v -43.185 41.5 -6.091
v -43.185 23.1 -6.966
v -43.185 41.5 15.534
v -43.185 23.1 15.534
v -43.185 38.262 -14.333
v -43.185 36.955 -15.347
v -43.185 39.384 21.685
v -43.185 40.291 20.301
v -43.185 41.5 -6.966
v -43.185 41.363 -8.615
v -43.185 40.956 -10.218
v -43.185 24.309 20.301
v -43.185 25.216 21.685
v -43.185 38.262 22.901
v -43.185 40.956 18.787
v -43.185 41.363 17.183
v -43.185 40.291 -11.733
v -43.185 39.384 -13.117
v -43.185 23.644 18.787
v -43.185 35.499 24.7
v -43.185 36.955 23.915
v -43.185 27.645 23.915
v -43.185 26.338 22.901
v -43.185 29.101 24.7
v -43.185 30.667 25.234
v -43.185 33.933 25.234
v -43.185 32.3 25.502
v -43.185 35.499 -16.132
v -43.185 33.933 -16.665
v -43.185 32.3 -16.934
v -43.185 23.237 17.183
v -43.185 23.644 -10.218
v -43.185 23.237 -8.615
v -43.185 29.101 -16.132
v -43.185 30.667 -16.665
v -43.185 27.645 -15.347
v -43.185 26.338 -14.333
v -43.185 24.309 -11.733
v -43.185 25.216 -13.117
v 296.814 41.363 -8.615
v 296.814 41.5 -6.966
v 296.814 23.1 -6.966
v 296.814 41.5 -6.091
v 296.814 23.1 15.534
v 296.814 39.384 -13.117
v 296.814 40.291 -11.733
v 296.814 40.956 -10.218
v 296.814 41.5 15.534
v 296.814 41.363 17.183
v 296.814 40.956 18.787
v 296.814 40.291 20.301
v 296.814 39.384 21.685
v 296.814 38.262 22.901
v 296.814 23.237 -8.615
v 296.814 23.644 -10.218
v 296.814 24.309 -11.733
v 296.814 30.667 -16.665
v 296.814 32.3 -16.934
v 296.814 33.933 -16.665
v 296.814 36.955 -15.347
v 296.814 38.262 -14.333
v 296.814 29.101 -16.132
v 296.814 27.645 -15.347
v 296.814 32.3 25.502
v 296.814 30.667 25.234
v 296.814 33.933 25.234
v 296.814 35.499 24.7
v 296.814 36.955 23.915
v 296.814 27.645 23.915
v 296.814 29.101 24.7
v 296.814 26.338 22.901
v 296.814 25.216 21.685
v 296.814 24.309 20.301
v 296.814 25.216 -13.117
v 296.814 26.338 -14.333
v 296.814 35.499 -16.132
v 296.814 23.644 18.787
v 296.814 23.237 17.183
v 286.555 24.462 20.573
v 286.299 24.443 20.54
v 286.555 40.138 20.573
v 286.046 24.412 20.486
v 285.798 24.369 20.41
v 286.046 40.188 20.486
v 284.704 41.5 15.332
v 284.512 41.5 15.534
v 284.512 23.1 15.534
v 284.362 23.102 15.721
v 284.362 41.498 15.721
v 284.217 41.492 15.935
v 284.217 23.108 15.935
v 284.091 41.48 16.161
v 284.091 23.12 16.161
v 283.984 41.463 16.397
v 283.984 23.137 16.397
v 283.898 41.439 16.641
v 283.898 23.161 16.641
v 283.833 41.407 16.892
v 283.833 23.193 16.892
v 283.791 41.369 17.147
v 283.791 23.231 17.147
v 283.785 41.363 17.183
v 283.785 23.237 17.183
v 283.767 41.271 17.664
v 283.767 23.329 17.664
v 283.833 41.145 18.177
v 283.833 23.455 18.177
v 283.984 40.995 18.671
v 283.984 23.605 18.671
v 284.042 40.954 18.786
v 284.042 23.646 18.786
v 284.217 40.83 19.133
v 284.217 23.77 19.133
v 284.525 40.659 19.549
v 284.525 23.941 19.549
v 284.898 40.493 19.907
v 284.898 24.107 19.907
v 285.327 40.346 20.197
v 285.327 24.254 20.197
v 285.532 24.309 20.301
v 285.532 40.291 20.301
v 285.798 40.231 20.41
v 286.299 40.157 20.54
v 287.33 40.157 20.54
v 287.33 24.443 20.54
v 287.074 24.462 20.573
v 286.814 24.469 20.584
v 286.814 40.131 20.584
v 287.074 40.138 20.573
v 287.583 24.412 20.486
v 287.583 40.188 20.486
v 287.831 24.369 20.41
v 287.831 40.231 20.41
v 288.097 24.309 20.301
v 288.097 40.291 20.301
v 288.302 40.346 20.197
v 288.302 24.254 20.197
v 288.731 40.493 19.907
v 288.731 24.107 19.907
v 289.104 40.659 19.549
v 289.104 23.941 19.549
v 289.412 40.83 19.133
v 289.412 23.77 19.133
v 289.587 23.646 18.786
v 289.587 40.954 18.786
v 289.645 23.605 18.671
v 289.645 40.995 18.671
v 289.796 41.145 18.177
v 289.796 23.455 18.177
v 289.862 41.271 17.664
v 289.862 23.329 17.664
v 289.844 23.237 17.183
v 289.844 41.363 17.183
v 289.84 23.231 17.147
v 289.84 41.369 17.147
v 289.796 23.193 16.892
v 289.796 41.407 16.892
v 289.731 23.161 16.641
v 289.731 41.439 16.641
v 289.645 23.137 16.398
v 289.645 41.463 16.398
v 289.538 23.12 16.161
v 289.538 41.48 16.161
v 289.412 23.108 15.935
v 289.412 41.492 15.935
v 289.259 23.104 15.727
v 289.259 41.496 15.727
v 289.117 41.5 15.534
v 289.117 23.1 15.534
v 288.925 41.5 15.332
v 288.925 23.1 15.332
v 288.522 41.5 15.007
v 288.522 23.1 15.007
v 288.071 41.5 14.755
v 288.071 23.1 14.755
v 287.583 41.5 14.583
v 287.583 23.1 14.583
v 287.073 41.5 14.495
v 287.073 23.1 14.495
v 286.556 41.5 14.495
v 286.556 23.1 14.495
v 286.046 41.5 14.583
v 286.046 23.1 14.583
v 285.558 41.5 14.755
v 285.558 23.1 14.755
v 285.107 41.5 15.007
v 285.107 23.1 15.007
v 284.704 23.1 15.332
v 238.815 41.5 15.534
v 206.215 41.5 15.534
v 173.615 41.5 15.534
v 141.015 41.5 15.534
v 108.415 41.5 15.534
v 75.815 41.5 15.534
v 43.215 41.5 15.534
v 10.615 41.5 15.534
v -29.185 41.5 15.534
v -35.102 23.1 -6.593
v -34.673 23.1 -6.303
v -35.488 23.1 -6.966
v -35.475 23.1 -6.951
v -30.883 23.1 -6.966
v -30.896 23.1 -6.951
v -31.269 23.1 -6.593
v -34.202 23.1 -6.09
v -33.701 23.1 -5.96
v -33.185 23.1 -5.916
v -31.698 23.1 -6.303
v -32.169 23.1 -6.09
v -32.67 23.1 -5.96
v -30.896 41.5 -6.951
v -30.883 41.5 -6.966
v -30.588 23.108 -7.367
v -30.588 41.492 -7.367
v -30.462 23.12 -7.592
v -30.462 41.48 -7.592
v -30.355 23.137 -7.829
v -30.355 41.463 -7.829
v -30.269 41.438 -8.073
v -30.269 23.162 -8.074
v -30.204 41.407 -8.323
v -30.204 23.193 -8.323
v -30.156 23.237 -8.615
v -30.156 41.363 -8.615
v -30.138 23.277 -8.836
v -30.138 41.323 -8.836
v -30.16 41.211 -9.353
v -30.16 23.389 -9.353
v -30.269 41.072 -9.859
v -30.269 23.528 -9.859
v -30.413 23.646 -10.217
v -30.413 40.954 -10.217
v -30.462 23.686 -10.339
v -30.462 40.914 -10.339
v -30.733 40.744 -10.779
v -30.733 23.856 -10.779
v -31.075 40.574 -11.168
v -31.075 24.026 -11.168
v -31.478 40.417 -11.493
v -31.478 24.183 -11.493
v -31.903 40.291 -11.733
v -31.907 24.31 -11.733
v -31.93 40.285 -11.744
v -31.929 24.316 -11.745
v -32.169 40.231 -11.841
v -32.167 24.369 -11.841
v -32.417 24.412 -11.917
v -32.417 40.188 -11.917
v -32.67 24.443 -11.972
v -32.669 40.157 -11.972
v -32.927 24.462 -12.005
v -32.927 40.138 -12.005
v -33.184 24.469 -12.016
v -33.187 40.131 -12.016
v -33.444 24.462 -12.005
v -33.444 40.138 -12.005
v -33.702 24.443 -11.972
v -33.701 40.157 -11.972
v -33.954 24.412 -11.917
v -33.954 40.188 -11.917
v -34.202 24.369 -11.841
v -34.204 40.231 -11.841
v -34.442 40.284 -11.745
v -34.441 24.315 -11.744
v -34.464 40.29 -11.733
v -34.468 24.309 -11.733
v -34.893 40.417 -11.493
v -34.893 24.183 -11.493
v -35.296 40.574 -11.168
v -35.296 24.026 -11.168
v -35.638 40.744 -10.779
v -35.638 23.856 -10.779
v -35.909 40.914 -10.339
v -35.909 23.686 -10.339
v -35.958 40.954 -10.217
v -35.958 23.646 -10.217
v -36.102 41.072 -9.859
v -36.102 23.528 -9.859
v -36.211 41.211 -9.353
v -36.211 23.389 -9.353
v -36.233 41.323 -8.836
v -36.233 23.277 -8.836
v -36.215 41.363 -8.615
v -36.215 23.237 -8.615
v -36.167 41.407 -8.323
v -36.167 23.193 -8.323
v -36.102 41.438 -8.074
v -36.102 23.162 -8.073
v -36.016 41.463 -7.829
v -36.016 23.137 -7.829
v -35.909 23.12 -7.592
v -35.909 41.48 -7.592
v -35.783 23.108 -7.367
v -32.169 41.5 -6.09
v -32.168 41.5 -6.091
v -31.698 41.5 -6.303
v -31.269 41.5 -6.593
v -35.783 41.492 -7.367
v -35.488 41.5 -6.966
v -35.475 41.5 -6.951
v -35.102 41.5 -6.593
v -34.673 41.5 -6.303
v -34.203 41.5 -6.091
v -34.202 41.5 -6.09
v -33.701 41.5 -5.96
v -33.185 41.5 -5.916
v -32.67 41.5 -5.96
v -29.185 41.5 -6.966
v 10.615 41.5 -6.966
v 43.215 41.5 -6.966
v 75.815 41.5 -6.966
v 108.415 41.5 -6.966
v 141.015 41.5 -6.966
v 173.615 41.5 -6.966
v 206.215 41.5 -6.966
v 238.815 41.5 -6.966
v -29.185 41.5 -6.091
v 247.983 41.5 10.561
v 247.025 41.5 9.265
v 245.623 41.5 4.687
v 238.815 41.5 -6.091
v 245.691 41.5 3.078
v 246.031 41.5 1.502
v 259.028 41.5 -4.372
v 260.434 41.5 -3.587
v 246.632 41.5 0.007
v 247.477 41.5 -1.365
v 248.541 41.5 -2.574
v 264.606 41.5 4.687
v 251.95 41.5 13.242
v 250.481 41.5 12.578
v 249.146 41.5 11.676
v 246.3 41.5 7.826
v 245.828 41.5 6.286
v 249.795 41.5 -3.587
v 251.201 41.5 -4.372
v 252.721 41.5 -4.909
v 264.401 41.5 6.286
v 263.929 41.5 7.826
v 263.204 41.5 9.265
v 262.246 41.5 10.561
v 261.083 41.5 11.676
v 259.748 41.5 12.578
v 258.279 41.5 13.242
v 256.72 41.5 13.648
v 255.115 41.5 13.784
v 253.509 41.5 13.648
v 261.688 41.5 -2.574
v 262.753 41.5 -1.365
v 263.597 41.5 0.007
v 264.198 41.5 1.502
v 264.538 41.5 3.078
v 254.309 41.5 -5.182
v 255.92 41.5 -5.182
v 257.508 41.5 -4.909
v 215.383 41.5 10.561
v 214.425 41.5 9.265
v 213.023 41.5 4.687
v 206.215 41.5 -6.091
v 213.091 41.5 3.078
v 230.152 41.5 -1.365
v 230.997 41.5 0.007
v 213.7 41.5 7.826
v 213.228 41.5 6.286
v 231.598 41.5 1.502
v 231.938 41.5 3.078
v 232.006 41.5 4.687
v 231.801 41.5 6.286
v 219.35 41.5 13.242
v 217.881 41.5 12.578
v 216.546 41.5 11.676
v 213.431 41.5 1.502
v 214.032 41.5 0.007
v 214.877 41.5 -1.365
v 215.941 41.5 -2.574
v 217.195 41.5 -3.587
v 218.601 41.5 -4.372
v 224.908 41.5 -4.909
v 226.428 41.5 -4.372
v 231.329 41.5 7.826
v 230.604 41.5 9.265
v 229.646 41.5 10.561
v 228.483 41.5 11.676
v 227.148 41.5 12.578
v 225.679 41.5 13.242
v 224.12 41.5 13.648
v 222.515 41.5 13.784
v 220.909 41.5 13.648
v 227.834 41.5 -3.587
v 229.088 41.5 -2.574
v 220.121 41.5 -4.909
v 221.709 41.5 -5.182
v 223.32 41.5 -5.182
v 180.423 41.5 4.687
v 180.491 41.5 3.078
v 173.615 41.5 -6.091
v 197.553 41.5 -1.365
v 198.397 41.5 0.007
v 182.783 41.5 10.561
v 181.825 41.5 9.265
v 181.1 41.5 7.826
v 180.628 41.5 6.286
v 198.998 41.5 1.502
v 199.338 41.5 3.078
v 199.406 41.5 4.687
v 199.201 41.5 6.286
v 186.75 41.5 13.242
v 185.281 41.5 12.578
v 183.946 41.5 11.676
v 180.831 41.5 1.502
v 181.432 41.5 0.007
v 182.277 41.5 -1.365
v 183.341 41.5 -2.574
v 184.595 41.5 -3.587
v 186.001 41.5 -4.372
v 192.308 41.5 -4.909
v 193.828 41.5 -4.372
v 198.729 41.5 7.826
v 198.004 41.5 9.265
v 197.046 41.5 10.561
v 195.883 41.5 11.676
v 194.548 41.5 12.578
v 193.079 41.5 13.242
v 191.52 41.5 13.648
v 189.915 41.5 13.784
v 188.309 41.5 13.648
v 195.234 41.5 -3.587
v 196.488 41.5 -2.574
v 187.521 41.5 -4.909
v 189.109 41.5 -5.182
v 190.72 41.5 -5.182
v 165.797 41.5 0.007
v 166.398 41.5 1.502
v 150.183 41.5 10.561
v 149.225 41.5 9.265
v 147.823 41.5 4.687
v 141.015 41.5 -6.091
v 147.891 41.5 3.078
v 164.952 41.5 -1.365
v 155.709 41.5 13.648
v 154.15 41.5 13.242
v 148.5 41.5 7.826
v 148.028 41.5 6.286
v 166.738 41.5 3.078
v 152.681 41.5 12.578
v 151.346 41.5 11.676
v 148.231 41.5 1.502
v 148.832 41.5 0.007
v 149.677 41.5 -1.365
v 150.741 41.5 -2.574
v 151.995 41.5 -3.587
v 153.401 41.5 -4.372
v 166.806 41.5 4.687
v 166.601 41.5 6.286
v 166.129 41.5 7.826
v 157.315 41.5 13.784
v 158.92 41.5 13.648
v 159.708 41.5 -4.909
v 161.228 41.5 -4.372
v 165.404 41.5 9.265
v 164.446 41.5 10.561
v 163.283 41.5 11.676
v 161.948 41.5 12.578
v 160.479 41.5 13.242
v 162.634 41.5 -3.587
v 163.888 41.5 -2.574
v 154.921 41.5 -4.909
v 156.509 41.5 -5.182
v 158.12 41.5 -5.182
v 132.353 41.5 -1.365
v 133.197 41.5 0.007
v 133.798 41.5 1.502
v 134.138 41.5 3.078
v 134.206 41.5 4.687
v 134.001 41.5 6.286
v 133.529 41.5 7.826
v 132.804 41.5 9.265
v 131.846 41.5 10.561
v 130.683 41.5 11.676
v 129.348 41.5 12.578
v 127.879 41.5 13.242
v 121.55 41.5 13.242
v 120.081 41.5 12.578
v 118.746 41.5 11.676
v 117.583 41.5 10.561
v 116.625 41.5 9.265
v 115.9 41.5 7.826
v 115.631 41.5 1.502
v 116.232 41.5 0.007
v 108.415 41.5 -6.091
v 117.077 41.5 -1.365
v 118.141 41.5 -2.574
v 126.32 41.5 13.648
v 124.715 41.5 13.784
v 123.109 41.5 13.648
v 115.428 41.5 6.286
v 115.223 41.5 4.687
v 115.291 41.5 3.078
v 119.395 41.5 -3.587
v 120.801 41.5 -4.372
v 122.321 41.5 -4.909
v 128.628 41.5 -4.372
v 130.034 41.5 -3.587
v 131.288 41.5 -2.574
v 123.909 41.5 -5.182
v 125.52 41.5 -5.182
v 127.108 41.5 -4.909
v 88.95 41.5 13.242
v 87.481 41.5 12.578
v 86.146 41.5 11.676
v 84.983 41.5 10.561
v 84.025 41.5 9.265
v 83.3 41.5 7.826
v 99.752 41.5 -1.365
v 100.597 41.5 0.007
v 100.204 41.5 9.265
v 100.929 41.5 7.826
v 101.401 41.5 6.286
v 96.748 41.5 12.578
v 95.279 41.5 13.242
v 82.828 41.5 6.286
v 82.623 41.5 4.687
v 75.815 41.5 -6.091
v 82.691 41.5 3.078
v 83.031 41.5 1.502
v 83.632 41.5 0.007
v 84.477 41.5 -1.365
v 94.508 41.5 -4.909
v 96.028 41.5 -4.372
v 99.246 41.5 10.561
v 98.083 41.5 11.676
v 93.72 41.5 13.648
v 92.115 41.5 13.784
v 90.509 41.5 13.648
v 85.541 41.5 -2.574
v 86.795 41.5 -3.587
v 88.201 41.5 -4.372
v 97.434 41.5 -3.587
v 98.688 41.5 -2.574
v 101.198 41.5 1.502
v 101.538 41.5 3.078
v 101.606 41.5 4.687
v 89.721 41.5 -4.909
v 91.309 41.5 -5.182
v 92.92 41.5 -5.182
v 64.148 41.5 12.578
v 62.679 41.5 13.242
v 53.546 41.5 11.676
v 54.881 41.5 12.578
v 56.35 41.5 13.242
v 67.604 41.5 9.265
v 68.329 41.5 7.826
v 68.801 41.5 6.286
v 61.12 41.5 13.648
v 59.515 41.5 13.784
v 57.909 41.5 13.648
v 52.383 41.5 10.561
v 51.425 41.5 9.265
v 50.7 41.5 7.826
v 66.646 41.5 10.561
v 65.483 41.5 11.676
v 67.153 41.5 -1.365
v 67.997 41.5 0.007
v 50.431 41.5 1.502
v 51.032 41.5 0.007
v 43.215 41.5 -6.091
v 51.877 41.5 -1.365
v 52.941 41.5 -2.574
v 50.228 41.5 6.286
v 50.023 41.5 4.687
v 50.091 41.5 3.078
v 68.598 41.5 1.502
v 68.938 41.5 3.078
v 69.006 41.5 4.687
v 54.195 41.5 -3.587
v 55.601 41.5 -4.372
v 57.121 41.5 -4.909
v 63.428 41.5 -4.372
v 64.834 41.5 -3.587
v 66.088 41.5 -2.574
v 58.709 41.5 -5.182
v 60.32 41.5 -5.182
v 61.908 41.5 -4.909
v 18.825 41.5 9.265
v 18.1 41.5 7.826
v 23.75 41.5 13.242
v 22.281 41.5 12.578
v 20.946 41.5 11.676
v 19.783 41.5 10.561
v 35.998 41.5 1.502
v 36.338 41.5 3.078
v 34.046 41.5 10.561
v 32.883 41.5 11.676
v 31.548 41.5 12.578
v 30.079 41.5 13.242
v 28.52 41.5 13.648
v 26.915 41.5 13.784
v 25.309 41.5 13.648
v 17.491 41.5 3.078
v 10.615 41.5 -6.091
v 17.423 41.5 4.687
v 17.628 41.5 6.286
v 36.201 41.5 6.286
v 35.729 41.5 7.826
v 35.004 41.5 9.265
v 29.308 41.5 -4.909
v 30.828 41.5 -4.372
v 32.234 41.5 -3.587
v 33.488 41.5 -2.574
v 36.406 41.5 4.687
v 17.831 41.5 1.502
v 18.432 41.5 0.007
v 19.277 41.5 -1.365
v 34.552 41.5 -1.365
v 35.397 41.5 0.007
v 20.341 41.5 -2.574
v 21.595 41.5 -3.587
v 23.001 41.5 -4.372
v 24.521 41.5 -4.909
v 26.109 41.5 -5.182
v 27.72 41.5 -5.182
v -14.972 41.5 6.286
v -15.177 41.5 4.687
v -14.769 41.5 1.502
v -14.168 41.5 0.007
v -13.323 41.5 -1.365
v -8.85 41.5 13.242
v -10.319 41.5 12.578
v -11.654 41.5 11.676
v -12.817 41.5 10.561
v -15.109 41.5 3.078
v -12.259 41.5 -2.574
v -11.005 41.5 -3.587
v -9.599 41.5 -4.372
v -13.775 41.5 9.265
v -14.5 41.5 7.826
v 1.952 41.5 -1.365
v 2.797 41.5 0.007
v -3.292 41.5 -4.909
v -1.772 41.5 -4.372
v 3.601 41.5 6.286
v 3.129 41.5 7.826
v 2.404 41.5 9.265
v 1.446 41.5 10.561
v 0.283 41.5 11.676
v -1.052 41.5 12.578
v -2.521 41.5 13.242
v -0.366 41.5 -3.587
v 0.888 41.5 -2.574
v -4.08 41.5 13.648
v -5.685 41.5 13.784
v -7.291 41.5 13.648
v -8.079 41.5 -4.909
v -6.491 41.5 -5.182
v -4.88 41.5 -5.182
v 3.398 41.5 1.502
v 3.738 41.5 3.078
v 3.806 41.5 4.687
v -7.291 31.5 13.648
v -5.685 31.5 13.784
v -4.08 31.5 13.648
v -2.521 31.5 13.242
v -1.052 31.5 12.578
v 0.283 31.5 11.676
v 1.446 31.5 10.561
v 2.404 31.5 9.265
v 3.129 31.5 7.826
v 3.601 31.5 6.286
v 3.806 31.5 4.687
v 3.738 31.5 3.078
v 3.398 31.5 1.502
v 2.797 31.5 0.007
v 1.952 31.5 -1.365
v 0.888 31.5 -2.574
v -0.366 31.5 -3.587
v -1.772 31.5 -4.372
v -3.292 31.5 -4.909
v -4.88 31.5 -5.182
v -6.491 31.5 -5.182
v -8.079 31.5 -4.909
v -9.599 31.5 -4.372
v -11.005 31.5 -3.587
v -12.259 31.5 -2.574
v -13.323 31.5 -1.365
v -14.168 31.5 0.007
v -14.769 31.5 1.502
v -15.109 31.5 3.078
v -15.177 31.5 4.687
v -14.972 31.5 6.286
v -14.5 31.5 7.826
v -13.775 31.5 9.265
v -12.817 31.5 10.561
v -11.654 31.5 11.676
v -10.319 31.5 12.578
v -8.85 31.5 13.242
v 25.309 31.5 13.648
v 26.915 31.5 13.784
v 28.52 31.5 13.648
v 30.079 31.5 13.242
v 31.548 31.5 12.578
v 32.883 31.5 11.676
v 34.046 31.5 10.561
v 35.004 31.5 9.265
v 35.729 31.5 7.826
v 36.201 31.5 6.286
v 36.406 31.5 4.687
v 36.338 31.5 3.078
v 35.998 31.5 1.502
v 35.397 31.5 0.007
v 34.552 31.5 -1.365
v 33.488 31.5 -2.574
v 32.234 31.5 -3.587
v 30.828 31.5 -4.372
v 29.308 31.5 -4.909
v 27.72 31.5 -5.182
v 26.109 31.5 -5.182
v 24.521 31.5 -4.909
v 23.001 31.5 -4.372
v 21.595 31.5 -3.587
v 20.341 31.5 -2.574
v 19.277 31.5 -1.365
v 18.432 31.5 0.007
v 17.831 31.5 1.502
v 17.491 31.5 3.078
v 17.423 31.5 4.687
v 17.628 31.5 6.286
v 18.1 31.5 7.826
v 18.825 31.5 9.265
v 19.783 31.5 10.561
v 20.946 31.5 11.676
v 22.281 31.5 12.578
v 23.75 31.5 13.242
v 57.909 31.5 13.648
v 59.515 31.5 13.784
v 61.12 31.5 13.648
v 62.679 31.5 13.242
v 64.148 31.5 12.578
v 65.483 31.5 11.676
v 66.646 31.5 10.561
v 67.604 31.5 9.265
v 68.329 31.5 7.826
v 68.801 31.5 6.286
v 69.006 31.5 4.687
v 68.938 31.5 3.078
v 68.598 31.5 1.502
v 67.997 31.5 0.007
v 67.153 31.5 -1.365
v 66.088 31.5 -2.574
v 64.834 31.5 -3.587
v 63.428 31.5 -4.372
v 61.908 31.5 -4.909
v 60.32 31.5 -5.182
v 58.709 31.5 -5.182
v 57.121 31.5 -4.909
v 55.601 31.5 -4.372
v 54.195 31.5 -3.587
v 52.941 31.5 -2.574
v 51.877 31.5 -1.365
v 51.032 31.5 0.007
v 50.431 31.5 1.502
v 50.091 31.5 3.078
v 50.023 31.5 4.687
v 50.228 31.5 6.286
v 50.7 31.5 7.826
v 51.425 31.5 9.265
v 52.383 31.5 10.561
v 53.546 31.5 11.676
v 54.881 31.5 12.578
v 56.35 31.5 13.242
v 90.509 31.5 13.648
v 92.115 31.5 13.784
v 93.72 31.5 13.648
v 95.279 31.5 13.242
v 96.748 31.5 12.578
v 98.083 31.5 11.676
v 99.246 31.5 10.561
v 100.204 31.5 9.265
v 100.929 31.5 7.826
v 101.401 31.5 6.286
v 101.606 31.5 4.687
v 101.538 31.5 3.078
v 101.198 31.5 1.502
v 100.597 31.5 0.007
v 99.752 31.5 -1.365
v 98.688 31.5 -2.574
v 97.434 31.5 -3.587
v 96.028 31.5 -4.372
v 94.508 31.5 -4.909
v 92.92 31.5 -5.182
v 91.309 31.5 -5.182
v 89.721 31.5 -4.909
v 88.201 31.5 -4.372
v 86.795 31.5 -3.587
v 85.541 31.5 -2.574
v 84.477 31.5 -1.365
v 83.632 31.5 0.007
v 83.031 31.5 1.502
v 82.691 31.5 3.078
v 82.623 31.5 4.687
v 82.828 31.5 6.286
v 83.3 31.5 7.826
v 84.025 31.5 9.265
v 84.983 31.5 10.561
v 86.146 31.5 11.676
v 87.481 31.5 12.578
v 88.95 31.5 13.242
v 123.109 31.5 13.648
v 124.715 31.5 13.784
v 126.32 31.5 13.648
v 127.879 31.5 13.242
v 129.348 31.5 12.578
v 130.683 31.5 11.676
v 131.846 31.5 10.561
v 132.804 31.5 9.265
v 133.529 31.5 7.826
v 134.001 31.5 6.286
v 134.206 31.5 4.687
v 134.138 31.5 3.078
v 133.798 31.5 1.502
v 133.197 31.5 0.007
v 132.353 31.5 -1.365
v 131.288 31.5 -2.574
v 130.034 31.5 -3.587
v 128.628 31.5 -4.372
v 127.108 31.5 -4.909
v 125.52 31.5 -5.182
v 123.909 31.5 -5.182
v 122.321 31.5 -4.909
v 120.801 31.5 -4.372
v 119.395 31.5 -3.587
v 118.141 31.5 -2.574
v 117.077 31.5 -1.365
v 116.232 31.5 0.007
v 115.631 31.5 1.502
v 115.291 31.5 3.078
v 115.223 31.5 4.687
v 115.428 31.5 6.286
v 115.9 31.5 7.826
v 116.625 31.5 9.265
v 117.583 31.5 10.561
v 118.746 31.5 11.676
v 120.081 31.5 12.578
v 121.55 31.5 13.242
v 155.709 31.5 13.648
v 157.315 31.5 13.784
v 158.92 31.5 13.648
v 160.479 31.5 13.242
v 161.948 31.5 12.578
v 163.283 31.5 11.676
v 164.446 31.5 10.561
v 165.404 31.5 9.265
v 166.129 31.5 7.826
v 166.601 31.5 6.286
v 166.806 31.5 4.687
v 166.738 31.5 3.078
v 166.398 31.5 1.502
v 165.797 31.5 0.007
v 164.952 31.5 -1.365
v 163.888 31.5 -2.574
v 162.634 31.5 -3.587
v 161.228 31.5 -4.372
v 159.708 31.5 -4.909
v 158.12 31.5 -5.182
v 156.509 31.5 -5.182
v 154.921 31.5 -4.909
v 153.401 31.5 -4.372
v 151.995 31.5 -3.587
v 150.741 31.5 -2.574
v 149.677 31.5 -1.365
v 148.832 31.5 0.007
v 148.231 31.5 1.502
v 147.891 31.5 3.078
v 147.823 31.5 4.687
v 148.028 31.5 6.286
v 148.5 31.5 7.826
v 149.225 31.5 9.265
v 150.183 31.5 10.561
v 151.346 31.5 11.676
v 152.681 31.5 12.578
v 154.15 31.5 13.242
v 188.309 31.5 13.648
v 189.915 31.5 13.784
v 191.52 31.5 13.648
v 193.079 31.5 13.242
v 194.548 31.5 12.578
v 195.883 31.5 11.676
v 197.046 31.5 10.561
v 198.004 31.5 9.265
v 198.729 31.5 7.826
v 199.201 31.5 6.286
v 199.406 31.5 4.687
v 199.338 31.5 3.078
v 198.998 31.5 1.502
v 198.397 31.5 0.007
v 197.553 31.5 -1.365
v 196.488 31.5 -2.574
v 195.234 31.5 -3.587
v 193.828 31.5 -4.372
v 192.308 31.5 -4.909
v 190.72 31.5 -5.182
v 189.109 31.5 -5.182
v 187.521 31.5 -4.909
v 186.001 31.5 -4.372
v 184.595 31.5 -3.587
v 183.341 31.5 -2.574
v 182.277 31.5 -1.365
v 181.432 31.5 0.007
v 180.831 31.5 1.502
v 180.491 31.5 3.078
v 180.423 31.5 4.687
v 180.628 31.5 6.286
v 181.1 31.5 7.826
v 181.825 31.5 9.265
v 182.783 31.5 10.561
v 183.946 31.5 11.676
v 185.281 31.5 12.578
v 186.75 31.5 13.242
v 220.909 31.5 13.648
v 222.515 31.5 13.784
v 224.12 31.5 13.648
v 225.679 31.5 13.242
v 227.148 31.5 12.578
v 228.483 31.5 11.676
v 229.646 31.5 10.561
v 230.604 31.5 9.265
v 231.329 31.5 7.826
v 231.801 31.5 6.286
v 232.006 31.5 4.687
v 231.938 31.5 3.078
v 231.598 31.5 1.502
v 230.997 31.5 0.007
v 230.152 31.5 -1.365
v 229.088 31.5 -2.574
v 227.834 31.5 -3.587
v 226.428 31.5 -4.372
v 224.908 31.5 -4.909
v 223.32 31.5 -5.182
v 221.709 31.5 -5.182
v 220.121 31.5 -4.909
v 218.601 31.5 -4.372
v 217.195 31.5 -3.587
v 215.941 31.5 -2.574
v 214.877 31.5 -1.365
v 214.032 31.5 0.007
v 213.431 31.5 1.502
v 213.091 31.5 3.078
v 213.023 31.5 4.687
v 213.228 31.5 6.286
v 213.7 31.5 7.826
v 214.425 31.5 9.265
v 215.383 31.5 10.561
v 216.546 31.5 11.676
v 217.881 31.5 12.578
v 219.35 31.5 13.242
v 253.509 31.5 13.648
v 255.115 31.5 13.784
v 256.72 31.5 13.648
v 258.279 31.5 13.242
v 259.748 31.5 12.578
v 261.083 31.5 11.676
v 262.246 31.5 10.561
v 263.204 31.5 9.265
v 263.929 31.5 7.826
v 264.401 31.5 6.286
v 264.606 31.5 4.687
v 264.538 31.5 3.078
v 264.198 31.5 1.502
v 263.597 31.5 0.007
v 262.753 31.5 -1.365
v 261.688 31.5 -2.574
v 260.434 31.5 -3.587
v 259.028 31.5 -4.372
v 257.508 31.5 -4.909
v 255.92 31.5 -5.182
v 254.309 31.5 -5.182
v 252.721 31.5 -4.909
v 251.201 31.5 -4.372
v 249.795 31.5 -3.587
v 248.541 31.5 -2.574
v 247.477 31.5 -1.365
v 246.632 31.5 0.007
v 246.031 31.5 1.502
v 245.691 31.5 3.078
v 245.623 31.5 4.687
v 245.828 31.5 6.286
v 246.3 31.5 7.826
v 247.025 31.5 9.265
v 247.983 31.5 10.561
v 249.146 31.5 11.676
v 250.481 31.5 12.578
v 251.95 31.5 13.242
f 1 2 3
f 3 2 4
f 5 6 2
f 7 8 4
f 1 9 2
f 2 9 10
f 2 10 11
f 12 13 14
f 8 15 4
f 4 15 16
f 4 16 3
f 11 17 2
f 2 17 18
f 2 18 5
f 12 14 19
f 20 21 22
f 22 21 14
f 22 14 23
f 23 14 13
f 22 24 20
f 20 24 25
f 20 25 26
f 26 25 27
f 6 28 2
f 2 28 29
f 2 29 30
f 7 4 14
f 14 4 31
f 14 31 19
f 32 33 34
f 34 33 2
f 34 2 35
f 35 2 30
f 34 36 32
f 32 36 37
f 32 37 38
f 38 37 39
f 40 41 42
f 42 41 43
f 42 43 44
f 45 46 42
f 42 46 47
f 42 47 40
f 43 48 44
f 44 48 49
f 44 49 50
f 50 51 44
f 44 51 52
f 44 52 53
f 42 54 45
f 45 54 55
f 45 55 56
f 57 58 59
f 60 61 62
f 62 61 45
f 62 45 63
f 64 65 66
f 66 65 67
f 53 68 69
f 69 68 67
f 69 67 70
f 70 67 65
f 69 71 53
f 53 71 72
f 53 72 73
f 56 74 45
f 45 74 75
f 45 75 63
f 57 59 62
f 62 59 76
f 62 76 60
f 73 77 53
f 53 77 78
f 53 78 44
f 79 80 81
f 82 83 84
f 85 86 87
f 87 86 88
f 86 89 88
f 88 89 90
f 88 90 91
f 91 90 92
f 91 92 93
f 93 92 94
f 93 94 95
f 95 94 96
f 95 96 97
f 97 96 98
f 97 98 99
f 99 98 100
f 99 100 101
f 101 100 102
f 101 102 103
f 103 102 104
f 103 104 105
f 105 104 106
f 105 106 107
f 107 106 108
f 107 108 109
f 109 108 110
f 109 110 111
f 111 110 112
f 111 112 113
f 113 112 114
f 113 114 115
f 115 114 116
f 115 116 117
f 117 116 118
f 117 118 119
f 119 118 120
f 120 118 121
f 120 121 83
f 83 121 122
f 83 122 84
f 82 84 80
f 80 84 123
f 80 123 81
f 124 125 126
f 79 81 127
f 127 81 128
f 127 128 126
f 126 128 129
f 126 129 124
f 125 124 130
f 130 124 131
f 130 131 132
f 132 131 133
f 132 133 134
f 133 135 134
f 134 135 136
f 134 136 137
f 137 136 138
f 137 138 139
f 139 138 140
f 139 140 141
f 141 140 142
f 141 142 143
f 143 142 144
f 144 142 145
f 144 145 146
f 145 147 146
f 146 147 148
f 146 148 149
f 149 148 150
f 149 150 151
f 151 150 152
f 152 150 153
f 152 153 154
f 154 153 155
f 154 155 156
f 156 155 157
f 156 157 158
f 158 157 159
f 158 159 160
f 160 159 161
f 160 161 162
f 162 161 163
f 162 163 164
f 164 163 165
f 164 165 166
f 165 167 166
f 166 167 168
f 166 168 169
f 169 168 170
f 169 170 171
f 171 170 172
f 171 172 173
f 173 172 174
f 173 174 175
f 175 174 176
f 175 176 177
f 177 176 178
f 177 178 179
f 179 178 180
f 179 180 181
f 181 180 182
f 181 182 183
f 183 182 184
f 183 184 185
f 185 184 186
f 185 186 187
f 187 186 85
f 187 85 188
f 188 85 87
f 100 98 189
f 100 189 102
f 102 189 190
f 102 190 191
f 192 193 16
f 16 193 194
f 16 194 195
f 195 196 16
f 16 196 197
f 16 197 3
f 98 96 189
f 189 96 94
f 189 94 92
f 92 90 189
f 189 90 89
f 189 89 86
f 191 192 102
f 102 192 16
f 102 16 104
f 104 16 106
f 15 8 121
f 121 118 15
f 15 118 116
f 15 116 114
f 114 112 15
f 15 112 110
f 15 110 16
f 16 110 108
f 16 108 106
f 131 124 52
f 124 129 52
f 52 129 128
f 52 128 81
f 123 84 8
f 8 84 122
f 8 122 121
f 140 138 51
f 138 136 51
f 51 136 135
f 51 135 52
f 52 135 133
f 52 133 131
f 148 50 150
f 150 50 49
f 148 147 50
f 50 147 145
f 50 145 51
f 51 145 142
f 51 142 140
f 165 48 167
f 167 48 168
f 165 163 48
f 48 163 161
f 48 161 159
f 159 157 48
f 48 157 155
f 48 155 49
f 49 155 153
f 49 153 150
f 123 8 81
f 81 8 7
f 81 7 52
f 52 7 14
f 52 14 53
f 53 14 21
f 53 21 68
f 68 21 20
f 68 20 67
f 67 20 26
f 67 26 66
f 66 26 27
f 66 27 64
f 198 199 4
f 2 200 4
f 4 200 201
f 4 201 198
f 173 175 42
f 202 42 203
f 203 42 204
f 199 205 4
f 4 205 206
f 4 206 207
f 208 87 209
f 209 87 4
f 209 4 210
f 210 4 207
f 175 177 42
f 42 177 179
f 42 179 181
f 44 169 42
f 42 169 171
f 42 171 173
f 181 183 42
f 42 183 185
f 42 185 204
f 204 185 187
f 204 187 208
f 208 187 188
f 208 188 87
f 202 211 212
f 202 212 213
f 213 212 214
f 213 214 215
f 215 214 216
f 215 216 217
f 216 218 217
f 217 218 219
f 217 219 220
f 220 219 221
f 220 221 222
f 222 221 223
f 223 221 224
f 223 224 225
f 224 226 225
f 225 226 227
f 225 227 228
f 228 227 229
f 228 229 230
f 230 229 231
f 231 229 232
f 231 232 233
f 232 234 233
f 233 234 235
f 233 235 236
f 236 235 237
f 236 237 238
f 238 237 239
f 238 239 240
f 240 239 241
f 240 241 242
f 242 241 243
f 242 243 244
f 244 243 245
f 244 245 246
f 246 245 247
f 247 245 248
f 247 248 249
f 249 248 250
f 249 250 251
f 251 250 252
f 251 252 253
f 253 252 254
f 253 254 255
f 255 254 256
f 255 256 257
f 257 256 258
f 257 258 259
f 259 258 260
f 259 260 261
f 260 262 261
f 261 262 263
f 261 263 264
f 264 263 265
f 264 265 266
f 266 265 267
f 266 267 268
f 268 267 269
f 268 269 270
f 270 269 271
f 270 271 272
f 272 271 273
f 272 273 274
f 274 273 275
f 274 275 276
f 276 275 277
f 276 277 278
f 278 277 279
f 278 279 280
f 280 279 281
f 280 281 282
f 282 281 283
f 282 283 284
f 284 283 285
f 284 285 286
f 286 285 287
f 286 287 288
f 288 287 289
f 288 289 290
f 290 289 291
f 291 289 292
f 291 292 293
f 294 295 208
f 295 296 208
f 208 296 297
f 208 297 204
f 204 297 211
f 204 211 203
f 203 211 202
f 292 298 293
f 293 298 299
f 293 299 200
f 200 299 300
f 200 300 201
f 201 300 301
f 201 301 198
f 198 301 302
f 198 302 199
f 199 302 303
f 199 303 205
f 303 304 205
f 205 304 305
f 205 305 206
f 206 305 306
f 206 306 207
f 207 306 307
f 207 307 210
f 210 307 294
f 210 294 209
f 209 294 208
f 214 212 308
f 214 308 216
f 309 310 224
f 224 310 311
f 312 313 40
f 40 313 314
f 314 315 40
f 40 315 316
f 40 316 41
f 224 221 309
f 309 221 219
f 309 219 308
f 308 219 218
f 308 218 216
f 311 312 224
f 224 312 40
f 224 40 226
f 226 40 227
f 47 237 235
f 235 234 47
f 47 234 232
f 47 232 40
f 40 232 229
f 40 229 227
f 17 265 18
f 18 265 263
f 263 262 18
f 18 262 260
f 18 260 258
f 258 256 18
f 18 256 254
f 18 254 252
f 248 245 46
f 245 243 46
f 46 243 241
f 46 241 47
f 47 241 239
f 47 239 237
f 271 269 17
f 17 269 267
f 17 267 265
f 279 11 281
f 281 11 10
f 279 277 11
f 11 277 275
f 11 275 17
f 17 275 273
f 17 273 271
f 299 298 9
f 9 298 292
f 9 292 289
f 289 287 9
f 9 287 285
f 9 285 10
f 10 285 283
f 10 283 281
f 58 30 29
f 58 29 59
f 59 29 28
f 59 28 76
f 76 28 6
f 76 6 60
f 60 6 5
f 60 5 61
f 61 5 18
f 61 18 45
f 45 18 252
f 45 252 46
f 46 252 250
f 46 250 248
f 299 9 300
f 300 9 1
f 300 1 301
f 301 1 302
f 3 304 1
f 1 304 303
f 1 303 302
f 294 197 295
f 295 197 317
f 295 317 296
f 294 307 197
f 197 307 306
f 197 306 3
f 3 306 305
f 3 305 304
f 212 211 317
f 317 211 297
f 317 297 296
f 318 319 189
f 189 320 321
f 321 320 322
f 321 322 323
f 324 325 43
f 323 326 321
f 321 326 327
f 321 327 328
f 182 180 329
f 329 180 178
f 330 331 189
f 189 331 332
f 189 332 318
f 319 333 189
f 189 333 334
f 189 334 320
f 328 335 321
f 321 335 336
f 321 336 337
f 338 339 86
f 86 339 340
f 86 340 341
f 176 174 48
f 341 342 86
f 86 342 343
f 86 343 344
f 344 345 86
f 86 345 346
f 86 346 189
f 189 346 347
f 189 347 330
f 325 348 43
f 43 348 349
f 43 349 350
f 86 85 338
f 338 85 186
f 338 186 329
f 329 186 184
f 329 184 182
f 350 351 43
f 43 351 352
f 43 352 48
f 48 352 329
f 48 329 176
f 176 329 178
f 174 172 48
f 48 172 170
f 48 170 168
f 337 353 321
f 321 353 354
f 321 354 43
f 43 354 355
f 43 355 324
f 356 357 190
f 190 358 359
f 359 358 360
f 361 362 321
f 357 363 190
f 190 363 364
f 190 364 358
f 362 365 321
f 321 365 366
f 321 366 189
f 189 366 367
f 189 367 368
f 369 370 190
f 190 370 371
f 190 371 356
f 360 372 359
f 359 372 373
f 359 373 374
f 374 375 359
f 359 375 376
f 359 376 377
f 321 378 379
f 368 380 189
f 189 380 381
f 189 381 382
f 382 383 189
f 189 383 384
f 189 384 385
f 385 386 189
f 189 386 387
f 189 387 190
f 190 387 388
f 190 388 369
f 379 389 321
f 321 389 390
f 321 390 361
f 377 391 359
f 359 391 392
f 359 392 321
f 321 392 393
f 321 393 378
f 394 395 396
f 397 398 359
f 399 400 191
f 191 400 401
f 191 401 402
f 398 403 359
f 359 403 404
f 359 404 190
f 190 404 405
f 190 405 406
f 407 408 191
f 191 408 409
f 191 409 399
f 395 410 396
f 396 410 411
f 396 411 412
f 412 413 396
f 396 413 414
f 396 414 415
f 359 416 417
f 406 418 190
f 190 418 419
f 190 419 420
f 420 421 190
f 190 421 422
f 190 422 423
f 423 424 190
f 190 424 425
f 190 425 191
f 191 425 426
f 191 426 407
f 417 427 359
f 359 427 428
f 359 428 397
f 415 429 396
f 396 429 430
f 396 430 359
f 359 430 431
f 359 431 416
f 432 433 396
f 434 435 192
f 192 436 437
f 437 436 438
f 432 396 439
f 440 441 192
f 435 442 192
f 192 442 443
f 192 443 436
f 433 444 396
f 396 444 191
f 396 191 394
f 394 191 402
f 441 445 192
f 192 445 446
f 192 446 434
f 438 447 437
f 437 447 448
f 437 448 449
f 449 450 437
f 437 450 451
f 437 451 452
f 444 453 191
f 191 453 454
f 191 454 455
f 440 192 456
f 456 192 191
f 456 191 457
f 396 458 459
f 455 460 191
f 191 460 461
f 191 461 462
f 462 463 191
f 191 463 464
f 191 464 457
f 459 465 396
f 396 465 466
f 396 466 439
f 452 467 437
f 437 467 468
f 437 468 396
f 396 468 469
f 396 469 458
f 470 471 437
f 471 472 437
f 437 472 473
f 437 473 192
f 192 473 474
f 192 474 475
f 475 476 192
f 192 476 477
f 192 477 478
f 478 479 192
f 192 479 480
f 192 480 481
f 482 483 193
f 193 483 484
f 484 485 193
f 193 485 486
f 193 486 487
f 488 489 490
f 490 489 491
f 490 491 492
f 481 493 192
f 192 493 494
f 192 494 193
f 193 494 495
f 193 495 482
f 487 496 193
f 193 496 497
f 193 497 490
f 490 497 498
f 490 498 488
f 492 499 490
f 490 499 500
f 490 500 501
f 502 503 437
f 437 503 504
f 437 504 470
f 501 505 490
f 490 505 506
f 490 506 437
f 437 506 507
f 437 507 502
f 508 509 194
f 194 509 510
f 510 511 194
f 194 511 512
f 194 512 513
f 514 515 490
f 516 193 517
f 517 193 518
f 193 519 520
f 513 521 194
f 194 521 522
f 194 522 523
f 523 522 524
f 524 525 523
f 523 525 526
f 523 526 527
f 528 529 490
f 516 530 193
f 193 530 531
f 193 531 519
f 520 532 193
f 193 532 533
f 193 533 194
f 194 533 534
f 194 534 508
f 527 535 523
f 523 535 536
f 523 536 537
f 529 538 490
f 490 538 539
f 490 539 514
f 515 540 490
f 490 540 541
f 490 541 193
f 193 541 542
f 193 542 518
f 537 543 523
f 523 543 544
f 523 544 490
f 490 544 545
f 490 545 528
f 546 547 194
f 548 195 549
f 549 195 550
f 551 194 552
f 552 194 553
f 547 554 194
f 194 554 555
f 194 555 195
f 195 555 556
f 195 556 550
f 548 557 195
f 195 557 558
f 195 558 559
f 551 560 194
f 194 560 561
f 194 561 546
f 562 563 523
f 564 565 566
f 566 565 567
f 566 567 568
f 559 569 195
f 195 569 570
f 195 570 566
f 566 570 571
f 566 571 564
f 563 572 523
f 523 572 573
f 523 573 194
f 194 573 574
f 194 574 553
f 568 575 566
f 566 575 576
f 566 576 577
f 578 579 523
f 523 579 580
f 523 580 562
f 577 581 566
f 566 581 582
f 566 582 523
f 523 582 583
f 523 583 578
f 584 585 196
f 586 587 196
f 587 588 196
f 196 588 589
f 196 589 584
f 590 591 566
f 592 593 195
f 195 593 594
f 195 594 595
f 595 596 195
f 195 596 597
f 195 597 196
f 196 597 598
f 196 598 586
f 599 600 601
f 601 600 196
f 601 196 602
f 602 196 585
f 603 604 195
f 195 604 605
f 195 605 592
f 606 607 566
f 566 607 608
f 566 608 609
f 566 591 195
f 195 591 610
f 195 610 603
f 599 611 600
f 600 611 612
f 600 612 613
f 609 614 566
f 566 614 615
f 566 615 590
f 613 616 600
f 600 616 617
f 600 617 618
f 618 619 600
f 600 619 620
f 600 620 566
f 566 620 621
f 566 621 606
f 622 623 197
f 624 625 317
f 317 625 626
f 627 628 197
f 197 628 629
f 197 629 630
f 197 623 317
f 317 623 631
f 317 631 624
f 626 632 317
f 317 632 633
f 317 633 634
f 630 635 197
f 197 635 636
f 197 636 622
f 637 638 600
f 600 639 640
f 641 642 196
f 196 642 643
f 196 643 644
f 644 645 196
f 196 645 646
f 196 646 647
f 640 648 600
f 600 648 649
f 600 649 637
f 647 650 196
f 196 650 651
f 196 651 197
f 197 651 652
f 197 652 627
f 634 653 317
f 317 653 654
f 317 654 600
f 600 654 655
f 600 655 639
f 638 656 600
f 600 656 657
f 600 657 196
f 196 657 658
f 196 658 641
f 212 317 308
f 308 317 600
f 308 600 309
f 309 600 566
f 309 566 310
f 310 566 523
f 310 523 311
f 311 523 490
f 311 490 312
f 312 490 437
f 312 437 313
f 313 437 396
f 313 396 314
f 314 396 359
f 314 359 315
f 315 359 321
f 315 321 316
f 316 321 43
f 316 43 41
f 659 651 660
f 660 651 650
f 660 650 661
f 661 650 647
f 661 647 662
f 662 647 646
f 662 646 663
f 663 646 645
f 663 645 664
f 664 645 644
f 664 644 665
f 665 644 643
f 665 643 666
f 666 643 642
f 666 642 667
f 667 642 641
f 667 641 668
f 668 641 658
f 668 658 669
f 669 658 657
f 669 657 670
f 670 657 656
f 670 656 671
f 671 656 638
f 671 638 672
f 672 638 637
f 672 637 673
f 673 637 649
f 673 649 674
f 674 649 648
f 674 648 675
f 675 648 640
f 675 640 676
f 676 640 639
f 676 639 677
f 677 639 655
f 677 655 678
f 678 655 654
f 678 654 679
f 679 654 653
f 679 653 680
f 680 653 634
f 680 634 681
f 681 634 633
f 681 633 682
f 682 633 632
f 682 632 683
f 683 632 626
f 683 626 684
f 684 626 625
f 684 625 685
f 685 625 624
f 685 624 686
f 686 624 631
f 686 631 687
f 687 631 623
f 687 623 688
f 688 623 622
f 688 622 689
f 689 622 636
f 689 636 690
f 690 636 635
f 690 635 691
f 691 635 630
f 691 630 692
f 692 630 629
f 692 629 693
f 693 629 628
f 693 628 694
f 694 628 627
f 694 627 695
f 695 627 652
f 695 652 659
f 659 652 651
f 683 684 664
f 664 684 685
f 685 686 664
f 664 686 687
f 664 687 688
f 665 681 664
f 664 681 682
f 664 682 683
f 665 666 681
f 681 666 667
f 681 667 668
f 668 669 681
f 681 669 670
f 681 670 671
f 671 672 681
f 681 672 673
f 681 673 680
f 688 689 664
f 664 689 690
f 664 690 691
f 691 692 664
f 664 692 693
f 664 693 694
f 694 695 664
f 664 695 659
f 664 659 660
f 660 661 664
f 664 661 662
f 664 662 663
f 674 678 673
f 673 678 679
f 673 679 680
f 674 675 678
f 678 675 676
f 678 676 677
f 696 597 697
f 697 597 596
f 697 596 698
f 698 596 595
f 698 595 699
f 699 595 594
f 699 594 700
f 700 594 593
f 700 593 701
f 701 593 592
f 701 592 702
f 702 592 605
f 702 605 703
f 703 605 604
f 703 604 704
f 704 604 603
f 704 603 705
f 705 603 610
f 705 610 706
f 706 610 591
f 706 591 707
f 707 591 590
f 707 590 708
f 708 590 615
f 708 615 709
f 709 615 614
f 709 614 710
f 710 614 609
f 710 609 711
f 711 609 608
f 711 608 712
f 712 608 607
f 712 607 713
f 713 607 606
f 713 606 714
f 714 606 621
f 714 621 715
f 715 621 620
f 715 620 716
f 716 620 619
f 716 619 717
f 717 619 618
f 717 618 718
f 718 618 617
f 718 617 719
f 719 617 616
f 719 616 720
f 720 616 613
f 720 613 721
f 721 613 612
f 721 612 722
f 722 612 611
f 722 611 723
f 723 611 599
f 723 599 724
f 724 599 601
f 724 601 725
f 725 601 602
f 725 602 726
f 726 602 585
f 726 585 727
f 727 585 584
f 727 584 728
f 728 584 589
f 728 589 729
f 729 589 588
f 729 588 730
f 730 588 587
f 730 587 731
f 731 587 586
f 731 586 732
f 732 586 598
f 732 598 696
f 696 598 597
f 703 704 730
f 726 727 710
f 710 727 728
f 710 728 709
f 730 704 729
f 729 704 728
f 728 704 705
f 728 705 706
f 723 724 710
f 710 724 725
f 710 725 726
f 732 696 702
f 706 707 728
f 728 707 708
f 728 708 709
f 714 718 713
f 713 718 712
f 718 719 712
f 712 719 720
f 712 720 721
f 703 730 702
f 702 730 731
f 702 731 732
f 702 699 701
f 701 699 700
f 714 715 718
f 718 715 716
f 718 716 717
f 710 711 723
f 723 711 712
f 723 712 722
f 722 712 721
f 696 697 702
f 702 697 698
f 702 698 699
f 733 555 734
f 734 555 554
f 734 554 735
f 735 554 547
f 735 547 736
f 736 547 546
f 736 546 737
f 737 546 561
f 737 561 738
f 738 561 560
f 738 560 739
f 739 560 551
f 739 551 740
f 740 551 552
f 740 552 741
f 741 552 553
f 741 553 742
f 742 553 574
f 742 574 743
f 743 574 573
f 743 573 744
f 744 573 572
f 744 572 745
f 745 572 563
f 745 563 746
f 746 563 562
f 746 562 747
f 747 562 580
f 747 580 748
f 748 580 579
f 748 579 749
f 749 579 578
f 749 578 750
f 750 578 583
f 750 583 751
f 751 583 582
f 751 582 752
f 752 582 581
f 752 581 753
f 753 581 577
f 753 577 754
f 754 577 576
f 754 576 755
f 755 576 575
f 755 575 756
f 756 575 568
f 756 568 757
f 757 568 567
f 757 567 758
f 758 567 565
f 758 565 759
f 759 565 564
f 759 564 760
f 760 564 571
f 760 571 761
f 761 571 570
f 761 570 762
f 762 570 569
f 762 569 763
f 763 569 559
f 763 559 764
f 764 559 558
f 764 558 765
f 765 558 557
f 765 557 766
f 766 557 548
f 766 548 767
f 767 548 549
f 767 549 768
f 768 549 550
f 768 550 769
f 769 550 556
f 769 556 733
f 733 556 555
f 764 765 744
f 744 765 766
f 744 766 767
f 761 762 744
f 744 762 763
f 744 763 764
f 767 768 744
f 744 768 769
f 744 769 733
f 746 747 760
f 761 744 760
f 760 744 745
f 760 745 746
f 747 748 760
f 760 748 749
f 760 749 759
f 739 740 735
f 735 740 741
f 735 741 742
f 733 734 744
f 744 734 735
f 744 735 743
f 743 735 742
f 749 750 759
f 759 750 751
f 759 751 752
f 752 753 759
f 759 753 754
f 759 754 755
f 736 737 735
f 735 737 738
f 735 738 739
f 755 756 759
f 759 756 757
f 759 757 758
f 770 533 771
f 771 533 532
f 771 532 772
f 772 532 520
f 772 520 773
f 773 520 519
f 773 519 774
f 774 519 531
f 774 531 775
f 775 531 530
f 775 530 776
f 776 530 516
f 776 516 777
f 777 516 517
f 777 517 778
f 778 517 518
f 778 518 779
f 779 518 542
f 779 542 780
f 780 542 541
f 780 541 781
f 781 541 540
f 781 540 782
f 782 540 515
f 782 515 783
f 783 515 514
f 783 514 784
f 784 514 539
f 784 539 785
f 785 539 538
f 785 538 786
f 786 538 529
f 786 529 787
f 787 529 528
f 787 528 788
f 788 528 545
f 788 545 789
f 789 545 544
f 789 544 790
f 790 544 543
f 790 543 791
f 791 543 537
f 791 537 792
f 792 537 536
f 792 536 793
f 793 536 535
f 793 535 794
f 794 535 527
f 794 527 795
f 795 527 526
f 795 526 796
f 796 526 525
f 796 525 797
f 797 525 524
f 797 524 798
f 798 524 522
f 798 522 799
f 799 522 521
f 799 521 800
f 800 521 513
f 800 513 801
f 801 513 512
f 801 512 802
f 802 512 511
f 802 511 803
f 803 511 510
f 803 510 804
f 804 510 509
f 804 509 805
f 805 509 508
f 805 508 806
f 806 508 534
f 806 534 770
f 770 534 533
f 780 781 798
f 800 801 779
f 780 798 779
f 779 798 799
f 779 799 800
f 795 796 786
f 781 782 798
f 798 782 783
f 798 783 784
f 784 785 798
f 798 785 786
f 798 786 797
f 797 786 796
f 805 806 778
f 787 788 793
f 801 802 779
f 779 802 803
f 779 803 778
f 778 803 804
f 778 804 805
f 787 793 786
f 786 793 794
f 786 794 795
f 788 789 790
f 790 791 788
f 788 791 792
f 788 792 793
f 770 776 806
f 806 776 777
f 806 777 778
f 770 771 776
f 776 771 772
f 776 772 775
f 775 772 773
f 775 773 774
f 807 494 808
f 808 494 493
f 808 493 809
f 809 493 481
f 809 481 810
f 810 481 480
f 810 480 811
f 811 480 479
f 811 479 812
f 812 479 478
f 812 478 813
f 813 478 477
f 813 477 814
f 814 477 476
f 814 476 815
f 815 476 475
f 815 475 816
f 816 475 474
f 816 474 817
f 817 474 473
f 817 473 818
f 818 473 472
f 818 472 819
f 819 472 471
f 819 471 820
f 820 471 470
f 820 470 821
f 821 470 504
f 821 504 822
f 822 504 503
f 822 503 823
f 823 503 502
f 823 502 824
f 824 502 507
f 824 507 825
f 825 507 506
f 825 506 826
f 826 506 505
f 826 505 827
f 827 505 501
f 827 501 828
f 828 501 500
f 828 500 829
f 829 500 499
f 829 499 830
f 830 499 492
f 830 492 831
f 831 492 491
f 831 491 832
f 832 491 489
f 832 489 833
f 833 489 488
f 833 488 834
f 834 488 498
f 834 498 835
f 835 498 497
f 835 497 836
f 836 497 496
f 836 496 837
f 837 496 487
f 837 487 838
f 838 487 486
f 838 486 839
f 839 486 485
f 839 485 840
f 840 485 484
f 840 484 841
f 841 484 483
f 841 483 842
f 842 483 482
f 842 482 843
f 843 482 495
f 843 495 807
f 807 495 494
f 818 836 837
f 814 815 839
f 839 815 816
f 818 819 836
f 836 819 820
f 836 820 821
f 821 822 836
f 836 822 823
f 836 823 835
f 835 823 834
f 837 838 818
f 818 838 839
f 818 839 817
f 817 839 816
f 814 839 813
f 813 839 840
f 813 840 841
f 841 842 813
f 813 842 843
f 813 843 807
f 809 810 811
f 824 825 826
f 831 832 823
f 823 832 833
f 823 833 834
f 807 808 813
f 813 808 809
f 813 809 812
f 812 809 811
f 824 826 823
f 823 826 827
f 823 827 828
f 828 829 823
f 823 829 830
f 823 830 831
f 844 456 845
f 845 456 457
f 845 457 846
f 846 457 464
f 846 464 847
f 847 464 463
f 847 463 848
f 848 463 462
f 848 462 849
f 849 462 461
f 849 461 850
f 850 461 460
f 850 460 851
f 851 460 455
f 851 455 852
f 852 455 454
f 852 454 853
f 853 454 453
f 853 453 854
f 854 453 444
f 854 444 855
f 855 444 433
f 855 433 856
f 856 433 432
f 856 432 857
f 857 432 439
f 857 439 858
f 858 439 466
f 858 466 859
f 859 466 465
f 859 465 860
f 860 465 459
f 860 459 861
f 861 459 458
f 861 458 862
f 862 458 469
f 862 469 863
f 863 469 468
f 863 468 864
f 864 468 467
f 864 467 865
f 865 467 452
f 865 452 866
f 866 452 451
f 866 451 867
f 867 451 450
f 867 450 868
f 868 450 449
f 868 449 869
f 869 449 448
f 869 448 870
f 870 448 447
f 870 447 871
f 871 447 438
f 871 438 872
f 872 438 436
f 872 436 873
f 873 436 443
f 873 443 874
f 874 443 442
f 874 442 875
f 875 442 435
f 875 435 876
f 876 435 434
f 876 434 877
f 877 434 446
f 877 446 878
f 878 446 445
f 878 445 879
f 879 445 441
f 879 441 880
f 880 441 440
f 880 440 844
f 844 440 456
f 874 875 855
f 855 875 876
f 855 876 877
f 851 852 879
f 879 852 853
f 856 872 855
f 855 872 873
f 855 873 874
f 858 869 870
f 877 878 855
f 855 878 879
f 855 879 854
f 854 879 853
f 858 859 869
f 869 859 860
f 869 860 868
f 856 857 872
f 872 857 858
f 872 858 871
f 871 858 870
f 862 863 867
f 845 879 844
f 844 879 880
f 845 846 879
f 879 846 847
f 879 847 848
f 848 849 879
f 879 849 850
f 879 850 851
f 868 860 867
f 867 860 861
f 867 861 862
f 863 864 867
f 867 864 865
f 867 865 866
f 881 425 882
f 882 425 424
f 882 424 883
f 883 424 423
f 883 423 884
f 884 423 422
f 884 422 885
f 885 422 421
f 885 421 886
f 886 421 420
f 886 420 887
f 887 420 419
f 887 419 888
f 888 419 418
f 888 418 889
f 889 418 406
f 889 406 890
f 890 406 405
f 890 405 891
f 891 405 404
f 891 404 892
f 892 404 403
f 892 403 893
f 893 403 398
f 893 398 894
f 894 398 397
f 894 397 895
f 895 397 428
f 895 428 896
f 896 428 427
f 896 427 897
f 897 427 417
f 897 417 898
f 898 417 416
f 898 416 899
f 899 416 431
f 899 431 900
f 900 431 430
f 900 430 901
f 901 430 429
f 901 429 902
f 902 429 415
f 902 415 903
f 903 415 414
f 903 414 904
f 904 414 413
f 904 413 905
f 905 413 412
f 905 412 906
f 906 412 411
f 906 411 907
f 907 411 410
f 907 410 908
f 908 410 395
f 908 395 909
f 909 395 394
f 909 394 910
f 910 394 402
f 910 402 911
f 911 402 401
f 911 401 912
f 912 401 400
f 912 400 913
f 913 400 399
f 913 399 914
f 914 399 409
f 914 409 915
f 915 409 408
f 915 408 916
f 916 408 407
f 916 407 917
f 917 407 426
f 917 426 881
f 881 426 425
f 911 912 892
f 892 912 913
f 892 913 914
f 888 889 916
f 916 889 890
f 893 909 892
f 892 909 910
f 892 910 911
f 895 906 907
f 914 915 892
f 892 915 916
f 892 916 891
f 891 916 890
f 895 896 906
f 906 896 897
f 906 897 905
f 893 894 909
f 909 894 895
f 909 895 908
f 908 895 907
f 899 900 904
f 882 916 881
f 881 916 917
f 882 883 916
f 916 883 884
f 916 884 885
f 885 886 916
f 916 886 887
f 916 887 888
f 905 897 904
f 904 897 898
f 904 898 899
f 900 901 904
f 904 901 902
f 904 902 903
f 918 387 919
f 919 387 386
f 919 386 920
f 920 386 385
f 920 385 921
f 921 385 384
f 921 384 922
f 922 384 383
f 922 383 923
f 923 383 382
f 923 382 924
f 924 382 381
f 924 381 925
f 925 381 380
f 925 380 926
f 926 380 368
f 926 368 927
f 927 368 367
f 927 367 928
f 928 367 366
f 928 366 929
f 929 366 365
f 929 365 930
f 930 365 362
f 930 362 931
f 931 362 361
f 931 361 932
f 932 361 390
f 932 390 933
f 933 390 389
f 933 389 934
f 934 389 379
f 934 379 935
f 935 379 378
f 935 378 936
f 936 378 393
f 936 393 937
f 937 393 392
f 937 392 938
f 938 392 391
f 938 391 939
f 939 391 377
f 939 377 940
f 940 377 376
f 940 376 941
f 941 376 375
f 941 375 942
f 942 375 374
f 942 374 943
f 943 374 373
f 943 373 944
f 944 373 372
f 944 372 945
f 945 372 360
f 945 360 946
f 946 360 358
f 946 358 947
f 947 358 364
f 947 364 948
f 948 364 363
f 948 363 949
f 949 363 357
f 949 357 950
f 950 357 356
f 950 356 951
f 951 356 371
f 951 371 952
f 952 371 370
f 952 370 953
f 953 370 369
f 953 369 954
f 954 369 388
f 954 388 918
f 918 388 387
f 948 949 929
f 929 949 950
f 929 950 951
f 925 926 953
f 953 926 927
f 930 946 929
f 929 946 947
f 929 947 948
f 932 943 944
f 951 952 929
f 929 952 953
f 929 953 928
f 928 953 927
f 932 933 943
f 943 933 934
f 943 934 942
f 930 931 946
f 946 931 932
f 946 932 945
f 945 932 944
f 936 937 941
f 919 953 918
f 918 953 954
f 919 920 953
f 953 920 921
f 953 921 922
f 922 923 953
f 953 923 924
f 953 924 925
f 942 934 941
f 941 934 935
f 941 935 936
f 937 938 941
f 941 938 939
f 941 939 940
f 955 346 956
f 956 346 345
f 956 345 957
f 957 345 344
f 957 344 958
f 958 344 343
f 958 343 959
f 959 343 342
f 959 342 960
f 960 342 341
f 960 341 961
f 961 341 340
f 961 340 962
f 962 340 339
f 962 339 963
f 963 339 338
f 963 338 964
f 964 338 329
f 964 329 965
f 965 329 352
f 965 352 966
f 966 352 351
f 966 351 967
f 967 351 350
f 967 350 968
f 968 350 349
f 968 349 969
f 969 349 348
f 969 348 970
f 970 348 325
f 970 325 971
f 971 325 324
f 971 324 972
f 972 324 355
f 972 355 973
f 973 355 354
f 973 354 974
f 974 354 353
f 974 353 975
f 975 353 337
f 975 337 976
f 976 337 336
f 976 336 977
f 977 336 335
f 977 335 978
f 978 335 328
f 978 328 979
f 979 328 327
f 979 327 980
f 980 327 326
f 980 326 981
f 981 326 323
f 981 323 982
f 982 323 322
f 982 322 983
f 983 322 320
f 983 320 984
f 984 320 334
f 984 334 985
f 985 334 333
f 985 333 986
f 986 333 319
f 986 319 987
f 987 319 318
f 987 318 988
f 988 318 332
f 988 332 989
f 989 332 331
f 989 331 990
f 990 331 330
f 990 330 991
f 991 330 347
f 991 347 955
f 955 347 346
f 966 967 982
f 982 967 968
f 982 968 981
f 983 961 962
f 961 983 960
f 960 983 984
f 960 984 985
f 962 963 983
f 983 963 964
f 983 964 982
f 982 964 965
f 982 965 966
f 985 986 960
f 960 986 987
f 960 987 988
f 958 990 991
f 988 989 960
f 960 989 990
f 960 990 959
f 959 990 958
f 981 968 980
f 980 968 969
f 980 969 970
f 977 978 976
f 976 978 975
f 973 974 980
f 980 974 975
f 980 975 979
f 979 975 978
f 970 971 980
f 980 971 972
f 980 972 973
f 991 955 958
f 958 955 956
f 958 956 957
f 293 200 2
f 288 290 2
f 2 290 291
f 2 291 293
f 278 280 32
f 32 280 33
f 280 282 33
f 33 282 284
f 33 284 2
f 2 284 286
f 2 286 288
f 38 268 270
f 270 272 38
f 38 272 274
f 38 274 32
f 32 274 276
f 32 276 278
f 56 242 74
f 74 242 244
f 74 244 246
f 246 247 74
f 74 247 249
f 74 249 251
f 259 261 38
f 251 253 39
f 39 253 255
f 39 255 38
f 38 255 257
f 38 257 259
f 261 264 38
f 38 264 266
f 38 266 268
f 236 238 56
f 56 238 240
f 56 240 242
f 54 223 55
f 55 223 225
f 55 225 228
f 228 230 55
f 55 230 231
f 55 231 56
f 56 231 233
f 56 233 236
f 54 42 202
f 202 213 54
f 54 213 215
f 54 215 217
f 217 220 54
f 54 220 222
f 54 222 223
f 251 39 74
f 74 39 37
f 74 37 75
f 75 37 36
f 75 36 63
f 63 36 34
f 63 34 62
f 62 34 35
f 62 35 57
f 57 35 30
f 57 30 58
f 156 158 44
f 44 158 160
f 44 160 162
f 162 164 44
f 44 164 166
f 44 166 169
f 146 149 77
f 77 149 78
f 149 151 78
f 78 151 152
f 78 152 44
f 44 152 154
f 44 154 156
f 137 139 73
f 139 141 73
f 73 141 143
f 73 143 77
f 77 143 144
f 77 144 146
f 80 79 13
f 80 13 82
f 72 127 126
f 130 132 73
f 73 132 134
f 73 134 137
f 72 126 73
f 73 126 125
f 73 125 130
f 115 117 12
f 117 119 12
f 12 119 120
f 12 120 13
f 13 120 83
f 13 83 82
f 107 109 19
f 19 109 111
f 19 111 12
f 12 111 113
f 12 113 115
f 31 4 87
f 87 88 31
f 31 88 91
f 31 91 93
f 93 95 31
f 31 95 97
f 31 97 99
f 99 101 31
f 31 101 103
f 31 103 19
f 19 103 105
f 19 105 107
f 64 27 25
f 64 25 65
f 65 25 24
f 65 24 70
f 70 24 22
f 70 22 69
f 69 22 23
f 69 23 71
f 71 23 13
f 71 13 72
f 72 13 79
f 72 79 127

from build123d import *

# Parameters (mm, degrees)
SKETCH1_W           = 340
SKETCH1_H           = 42.5
BOSS_EXTRUDE1_DEPTH = 41.5
SKETCH2_R           = 9.5
CUT_EXTRUDE1_DEPTH  = 10
SKETCH4_R           = 3.05
CUT_EXTRUDE3_DEPTH  = 301.787476707
CUT_EXTRUDE4_DEPTH  = 344.473796902
CUT_EXTRUDE5_DEPTH  = 344.473797021
CUT_EXTRUDE6_DEPTH  = 344.473797021


with BuildPart() as part:
    # Sketch1 → Boss-Extrude1 (new body)
    with BuildSketch(Plane(origin=(0, 0, 0), x_dir=(1, 0, 0), z_dir=(0, 1, 0))):
        with Locations((126.814516129, -4.284274194)):
            Rectangle(SKETCH1_W, SKETCH1_H)
    extrude(amount=BOSS_EXTRUDE1_DEPTH)

    # Sketch2 → Cut-Extrude1 (cut)
    with BuildSketch(Plane(origin=(0, 41.5, 0), x_dir=(1, 0, 0), z_dir=(0, 1, 0))):
        with Locations(Location((-5.685483871, -4.284274194, 0), (0, 0, 270))):
            Circle(SKETCH2_R)
        with Locations(Location((26.914516129, -4.284274194, 0), (0, 0, 270))):
            Circle(SKETCH2_R)
        with Locations(Location((59.514516129, -4.284274194, 0), (0, 0, 270))):
            Circle(SKETCH2_R)
        with Locations(Location((92.114516129, -4.284274194, 0), (0, 0, 270))):
            Circle(SKETCH2_R)
        with Locations(Location((124.714516129, -4.284274194, 0), (0, 0, 270))):
            Circle(SKETCH2_R)
        with Locations(Location((157.314516129, -4.284274194, 0), (0, 0, 270))):
            Circle(SKETCH2_R)
        with Locations(Location((189.914516129, -4.284274194, 0), (0, 0, 270))):
            Circle(SKETCH2_R)
        with Locations(Location((222.514516129, -4.284274194, 0), (0, 0, 270))):
            Circle(SKETCH2_R)
        with Locations(Location((255.114516129, -4.284274194, 0), (0, 0, 270))):
            Circle(SKETCH2_R)
    extrude(amount=-CUT_EXTRUDE1_DEPTH, mode=Mode.SUBTRACT)

    # Sketch4 → Cut-Extrude3 (cut, through all)
    with BuildSketch(Plane(origin=(0, 41.5, 0), x_dir=(1, 0, 0), z_dir=(0, 1, 0))):
        with Locations(Location((286.814516129, -17.534274194, 0), (0, 0, 270))):
            Circle(SKETCH4_R)
        with Locations(Location((-33.185483871, 8.965725806, 0), (0, 0, 270))):
            Circle(SKETCH4_R)
    extrude(amount=-CUT_EXTRUDE3_DEPTH, mode=Mode.SUBTRACT)

    # Sketch3 → Cut-Extrude4 (cut, through all)
    with BuildSketch(Plane.ZY.offset(43.185483871)):
        with BuildLine():
            Line((-6.965725806, 41.5), (-16.965725806, 41.5))
            Line((-16.965725806, 41.5), (-16.965725806, 31.5))
            ThreePointArc((-16.965725806, 31.5), (-14.036793618, 38.571067812), (-6.965725806, 41.5))
        make_face()
        with BuildLine():
            ThreePointArc((-6.965725806, 0), (-14.036793618, 2.928932188), (-16.965725806, 10))
            Line((-16.965725806, 10), (-16.965725806, 0))
            Line((-16.965725806, 0), (-6.965725806, 0))
        make_face()
        with BuildLine():
            Line((25.534274194, 0), (25.534274194, 10))
            ThreePointArc((25.534274194, 10), (22.605342005, 2.928932188), (15.534274194, 0))
            Line((15.534274194, 0), (25.534274194, 0))
        make_face()
        with BuildLine():
            Line((25.534274194, 41.5), (15.534274194, 41.5))
            ThreePointArc((15.534274194, 41.5), (22.605342005, 38.571067812), (25.534274194, 31.5))
            Line((25.534274194, 31.5), (25.534274194, 41.5))
        make_face()
    extrude(amount=-CUT_EXTRUDE4_DEPTH, mode=Mode.SUBTRACT)

    # Sketch5 → Cut-Extrude5 (cut, through all)
    with BuildSketch(Plane.ZY.offset(43.185483871)):
        with BuildLine():
            Line((25.534274194, 23.1), (4.284274194, 23.1))
            Line((4.284274194, 23.1), (-16.965725806, 23.1))
            Line((-16.965725806, 23.1), (-16.965725806, 10))
            ThreePointArc((-16.965725806, 10), (-14.036793618, 2.928932188), (-6.965725806, 0))
            Line((-6.965725806, 0), (15.534274194, 0))
            ThreePointArc((15.534274194, 0), (22.605342005, 2.928932188), (25.534274194, 10))
            Line((25.534274194, 10), (25.534274194, 23.1))
        make_face()
    extrude(amount=-CUT_EXTRUDE5_DEPTH, mode=Mode.SUBTRACT)

    # Sketch6 → Cut-Extrude6 (cut, through all)
    with BuildSketch(Plane.ZY.offset(43.185483871)):
        with BuildLine():
            ThreePointArc((-16.933674442, 32.3), (-16.957709752, 31.900320899), (-16.965725806, 31.5))
            Line((-16.965725806, 31.5), (-16.965725806, 23.1))
            Line((-16.965725806, 23.1), (-6.965725806, 23.1))
            ThreePointArc((-6.965725806, 23.1), (-13.74805579, 25.751530772), (-16.933674442, 32.3))
        make_face()
        with BuildLine():
            ThreePointArc((25.502222829, 32.3), (22.316604177, 25.751530772), (15.534274194, 23.1))
            Line((15.534274194, 23.1), (25.534274194, 23.1))
            Line((25.534274194, 23.1), (25.534274194, 31.5))
            ThreePointArc((25.534274194, 31.5), (25.52625814, 31.900320899), (25.502222829, 32.3))
        make_face()
    extrude(amount=-CUT_EXTRUDE6_DEPTH, mode=Mode.SUBTRACT)


solid = part.part
